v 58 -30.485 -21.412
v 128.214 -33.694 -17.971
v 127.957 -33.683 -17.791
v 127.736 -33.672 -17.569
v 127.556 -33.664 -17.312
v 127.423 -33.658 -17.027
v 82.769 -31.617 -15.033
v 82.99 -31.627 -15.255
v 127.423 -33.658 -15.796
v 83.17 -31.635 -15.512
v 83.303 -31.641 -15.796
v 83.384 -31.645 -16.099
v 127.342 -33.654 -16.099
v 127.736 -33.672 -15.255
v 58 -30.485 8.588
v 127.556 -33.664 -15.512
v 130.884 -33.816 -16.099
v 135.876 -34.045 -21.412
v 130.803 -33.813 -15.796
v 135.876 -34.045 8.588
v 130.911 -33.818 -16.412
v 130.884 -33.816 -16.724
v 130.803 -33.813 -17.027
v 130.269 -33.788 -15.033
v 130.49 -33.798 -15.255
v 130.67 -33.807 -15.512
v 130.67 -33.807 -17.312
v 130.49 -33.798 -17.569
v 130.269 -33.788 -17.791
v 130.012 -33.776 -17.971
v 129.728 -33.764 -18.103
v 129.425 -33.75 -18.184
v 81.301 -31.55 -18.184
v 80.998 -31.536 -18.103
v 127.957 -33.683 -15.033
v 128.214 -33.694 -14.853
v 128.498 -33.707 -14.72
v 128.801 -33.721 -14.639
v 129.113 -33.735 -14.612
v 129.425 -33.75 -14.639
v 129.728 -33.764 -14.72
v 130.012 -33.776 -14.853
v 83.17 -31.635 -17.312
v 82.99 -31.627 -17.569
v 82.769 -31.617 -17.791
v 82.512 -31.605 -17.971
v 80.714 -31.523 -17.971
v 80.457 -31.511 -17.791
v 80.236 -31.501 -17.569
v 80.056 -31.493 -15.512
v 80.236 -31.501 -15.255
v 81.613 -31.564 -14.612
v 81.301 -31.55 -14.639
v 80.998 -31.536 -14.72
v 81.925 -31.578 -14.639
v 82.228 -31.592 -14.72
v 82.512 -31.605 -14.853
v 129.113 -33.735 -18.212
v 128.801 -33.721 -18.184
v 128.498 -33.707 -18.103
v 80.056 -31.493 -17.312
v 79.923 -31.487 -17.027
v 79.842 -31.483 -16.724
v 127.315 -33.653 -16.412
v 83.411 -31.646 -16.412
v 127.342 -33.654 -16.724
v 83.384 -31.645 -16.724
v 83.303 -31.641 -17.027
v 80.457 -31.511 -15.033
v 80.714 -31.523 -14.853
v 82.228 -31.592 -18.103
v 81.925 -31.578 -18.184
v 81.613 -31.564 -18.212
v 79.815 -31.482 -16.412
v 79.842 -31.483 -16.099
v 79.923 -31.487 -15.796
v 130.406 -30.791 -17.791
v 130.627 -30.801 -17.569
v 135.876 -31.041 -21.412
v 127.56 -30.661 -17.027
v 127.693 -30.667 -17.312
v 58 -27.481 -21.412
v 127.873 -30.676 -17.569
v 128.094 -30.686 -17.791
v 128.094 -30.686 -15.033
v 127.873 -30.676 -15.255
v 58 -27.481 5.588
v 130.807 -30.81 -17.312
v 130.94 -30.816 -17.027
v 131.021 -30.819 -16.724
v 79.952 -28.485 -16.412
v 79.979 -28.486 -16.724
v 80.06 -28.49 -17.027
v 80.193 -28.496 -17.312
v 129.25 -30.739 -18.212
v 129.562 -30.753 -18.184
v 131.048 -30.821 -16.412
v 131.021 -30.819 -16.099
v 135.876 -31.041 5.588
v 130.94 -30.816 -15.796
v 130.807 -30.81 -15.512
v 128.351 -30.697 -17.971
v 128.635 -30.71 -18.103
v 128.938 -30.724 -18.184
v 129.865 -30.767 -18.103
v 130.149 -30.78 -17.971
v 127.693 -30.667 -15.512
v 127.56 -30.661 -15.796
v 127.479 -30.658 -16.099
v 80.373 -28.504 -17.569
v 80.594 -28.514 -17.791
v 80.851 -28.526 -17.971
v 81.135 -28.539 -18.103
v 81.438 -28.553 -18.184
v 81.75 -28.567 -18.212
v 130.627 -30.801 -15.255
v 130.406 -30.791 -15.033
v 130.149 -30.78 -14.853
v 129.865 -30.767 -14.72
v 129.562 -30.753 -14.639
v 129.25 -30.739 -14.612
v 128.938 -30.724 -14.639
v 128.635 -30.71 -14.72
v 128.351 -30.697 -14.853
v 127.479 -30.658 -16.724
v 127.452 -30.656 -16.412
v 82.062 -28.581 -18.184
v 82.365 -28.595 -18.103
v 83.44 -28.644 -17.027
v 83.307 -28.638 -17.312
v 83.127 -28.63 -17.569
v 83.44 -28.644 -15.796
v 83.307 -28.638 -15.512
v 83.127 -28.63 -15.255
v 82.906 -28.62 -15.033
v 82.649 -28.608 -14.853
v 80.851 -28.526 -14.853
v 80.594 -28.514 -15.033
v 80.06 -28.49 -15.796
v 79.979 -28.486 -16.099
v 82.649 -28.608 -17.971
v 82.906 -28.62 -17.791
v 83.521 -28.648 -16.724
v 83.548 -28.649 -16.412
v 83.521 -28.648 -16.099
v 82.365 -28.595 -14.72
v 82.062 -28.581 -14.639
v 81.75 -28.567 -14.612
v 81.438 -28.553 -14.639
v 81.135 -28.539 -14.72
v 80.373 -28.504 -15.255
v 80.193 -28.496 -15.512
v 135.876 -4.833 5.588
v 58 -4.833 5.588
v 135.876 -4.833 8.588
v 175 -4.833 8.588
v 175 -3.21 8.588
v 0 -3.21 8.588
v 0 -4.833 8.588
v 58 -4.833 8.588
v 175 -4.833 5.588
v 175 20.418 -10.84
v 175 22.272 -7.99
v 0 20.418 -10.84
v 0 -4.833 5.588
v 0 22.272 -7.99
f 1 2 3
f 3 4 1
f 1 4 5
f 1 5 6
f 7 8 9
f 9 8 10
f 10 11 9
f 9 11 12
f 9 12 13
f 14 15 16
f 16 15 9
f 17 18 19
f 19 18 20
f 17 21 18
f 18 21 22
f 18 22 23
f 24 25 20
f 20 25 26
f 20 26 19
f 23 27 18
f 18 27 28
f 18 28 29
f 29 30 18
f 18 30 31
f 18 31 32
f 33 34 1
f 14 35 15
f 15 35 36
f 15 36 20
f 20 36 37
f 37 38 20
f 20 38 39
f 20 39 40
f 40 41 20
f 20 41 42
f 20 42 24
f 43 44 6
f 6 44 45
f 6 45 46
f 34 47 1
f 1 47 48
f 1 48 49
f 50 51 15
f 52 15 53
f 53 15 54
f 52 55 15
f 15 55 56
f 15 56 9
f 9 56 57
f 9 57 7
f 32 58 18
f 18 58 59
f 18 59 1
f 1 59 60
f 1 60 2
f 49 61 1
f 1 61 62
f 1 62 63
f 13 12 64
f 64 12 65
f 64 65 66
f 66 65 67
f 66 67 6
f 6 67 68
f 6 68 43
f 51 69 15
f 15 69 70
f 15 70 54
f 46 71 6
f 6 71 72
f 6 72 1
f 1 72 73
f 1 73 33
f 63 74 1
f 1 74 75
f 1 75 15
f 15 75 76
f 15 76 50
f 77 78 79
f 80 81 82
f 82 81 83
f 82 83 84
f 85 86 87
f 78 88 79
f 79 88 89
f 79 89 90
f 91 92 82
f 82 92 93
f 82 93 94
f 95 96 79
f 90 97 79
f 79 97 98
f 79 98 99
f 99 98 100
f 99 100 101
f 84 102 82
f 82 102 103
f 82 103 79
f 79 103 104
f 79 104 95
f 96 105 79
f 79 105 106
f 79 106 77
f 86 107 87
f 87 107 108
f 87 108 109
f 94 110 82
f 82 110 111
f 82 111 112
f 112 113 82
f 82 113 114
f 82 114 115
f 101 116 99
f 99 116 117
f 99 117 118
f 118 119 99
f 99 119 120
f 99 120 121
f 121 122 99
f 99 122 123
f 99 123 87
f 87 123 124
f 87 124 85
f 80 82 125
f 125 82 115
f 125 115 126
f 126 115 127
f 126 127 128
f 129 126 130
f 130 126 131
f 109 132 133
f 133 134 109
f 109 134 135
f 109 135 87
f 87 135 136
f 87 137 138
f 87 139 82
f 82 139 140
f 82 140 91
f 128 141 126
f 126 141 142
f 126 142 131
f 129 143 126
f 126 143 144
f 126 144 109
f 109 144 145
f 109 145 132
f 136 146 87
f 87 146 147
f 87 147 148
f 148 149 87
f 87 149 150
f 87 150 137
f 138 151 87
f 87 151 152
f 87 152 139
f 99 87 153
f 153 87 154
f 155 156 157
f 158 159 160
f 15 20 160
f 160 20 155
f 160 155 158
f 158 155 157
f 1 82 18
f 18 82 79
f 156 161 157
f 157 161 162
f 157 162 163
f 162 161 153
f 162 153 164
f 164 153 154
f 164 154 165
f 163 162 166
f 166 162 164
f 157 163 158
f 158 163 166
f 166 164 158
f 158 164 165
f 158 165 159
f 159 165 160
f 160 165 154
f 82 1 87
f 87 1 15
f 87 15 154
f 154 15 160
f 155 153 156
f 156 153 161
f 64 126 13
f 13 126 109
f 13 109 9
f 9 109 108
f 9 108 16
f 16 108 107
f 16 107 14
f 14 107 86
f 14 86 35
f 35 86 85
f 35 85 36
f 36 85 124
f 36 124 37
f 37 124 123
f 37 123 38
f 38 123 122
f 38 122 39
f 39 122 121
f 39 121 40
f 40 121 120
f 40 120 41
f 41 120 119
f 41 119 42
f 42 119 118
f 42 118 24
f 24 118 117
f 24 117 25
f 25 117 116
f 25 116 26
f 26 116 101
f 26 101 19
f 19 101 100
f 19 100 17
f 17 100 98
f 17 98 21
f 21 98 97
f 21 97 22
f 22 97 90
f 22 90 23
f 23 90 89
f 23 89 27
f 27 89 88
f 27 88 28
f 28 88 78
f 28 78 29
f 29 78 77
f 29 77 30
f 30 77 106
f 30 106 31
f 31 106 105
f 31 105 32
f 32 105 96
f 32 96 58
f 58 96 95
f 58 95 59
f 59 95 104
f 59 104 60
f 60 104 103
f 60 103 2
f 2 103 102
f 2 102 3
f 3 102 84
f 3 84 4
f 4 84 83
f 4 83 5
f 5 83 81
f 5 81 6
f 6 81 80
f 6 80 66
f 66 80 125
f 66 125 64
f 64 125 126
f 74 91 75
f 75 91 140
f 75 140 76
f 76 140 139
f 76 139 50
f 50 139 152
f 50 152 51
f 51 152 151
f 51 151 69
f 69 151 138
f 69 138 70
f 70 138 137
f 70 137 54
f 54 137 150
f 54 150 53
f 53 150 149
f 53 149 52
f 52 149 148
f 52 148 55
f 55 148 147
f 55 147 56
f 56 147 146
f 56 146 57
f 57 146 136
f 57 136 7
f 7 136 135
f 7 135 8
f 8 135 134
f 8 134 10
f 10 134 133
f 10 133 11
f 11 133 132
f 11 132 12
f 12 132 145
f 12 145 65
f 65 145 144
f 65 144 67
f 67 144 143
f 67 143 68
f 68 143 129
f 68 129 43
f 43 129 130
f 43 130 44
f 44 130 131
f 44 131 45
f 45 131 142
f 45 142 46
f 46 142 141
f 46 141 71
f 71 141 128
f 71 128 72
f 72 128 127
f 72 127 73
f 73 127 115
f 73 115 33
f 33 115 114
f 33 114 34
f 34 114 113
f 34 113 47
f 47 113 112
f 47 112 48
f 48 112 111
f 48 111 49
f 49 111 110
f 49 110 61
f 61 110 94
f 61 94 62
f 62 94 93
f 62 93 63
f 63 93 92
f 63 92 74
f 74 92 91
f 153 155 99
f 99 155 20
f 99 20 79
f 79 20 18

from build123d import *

# Parameters (mm, degrees)
BOSS_EXTRUDE1_DEPTH     = 175
BOSS_EXTRUDE2_DEPTH     = 3
SKETCH3_W               = 175.182761709
SKETCH3_H               = 30
BOSS_EXTRUDE3_DEPTH     = 3
CUT_EXTRUDE2_DEPTH      = 181.792640115
CUT_EXTRUDE2_DEPTH_BACK = 181.792640115
CUT_EXTRUDE3_DEPTH      = 184.561872553
CUT_EXTRUDE3_DEPTH_BACK = 184.561872553
SKETCH6_R               = 1.8
CUT_EXTRUDE4_DEPTH      = 181.463142487
CUT_EXTRUDE4_DEPTH_BACK = 181.463142487
SKETCH7_W               = 17.123749229
SKETCH7_H               = 37.285884773


with BuildPart() as part:
    # Sketch1 → Boss-Extrude1 (new body)
    with BuildSketch(Plane(origin=(0, 0, 0), x_dir=(0, 0, -1), z_dir=(1, 0, 0))):
        Polygon((-8.588191211, -21.709603514), (-8.588191211, -3.209603514), (7.989641648, 22.272457974), (10.839609051, 20.418358247), (-5.588191211, -4.833085652), (-5.588191211, -21.709603514), align=None)
    extrude(amount=BOSS_EXTRUDE1_DEPTH)

    # Sketch2 → Boss-Extrude2 (add)
    with BuildSketch(Plane(origin=(0, 0, 5.588191211), x_dir=(-1, 0, 0), z_dir=(0, 0, -1))):
        Polygon((-175, -4.833085652), (-175, -35.833085652), (0, -27.833085652), (0, -4.833085652), align=None)
    extrude(amount=-BOSS_EXTRUDE2_DEPTH)

    # Sketch3 → Boss-Extrude3 (add)
    with BuildSketch(Plane(origin=(-1.269716182, -27.775041484, 0), x_dir=(0.9989567369115598, -0.045666593687385605, 0), z_dir=(-0.045666593687385605, -0.9989567369115598, 0))):
        with Locations((88.862423069, -6.411808789)):
            Rectangle(SKETCH3_W, SKETCH3_H)
    extrude(amount=-BOSS_EXTRUDE3_DEPTH)

    # Sketch5 → Cut-Extrude2 (cut, two sides: drawn at the far end of the back side and taken through both)
    with BuildSketch(Plane(origin=(0, 0, 5.588191211), x_dir=(-1, 0, 0), z_dir=(0, 0, -1)).offset(-CUT_EXTRUDE2_DEPTH_BACK)):
        Polygon((-153, -31.824238309), (-153, -4.833085652), (-175, -4.833085652), (-175, -32.829952595), align=None)
        Polygon((-153, -39.90576601), (-153, -31.824238309), (-175, -32.829952595), (-175, -4.833085652), (-195.370559552, -4.833085652), (-195.370559552, -39.90576601), align=None)
        Polygon((-0.136999781, -24.836215442), (-58, -27.481381166), (-58, -41.473834752), (0, -41.473834752), (0, -27.833085652), align=None)
        Polygon((0, -4.833085652), (-58, -4.833085652), (-58, -27.481381166), (-0.136999781, -24.836215442), (0, -27.833085652), align=None)
    extrude(amount=CUT_EXTRUDE2_DEPTH + CUT_EXTRUDE2_DEPTH_BACK, mode=Mode.SUBTRACT)

    # Sketch6 → Cut-Extrude3 (cut, two sides: drawn at the far end of the back side and taken through both)
    with BuildSketch(Plane(origin=(-1.132716401, -24.778171273, 0), x_dir=(0.9989567369115598, -0.045666593687385605, 0), z_dir=(0.045666593687385605, 0.9989567369115598, 0)).offset(-CUT_EXTRUDE3_DEPTH_BACK)):
        with Locations(Location((82.969275183, 16.411808789, 0), (0, 0, 180))):
            Circle(SKETCH6_R)
        with Locations((130.518881933, 16.411808789)):
            Circle(SKETCH6_R)
    extrude(amount=CUT_EXTRUDE3_DEPTH + CUT_EXTRUDE3_DEPTH_BACK, mode=Mode.SUBTRACT)

    # Sketch7 → Cut-Extrude4 (cut, two sides: drawn at the far end of the back side and taken through both)
    with BuildSketch(Plane(origin=(0, 0, 5.588191211), x_dir=(-1, 0, 0), z_dir=(0, 0, -1)).offset(-CUT_EXTRUDE4_DEPTH_BACK)):
        with Locations((-144.438125386, -23.476028039)):
            Rectangle(SKETCH7_W, SKETCH7_H)
    extrude(amount=CUT_EXTRUDE4_DEPTH + CUT_EXTRUDE4_DEPTH_BACK, mode=Mode.SUBTRACT)


solid = part.part
